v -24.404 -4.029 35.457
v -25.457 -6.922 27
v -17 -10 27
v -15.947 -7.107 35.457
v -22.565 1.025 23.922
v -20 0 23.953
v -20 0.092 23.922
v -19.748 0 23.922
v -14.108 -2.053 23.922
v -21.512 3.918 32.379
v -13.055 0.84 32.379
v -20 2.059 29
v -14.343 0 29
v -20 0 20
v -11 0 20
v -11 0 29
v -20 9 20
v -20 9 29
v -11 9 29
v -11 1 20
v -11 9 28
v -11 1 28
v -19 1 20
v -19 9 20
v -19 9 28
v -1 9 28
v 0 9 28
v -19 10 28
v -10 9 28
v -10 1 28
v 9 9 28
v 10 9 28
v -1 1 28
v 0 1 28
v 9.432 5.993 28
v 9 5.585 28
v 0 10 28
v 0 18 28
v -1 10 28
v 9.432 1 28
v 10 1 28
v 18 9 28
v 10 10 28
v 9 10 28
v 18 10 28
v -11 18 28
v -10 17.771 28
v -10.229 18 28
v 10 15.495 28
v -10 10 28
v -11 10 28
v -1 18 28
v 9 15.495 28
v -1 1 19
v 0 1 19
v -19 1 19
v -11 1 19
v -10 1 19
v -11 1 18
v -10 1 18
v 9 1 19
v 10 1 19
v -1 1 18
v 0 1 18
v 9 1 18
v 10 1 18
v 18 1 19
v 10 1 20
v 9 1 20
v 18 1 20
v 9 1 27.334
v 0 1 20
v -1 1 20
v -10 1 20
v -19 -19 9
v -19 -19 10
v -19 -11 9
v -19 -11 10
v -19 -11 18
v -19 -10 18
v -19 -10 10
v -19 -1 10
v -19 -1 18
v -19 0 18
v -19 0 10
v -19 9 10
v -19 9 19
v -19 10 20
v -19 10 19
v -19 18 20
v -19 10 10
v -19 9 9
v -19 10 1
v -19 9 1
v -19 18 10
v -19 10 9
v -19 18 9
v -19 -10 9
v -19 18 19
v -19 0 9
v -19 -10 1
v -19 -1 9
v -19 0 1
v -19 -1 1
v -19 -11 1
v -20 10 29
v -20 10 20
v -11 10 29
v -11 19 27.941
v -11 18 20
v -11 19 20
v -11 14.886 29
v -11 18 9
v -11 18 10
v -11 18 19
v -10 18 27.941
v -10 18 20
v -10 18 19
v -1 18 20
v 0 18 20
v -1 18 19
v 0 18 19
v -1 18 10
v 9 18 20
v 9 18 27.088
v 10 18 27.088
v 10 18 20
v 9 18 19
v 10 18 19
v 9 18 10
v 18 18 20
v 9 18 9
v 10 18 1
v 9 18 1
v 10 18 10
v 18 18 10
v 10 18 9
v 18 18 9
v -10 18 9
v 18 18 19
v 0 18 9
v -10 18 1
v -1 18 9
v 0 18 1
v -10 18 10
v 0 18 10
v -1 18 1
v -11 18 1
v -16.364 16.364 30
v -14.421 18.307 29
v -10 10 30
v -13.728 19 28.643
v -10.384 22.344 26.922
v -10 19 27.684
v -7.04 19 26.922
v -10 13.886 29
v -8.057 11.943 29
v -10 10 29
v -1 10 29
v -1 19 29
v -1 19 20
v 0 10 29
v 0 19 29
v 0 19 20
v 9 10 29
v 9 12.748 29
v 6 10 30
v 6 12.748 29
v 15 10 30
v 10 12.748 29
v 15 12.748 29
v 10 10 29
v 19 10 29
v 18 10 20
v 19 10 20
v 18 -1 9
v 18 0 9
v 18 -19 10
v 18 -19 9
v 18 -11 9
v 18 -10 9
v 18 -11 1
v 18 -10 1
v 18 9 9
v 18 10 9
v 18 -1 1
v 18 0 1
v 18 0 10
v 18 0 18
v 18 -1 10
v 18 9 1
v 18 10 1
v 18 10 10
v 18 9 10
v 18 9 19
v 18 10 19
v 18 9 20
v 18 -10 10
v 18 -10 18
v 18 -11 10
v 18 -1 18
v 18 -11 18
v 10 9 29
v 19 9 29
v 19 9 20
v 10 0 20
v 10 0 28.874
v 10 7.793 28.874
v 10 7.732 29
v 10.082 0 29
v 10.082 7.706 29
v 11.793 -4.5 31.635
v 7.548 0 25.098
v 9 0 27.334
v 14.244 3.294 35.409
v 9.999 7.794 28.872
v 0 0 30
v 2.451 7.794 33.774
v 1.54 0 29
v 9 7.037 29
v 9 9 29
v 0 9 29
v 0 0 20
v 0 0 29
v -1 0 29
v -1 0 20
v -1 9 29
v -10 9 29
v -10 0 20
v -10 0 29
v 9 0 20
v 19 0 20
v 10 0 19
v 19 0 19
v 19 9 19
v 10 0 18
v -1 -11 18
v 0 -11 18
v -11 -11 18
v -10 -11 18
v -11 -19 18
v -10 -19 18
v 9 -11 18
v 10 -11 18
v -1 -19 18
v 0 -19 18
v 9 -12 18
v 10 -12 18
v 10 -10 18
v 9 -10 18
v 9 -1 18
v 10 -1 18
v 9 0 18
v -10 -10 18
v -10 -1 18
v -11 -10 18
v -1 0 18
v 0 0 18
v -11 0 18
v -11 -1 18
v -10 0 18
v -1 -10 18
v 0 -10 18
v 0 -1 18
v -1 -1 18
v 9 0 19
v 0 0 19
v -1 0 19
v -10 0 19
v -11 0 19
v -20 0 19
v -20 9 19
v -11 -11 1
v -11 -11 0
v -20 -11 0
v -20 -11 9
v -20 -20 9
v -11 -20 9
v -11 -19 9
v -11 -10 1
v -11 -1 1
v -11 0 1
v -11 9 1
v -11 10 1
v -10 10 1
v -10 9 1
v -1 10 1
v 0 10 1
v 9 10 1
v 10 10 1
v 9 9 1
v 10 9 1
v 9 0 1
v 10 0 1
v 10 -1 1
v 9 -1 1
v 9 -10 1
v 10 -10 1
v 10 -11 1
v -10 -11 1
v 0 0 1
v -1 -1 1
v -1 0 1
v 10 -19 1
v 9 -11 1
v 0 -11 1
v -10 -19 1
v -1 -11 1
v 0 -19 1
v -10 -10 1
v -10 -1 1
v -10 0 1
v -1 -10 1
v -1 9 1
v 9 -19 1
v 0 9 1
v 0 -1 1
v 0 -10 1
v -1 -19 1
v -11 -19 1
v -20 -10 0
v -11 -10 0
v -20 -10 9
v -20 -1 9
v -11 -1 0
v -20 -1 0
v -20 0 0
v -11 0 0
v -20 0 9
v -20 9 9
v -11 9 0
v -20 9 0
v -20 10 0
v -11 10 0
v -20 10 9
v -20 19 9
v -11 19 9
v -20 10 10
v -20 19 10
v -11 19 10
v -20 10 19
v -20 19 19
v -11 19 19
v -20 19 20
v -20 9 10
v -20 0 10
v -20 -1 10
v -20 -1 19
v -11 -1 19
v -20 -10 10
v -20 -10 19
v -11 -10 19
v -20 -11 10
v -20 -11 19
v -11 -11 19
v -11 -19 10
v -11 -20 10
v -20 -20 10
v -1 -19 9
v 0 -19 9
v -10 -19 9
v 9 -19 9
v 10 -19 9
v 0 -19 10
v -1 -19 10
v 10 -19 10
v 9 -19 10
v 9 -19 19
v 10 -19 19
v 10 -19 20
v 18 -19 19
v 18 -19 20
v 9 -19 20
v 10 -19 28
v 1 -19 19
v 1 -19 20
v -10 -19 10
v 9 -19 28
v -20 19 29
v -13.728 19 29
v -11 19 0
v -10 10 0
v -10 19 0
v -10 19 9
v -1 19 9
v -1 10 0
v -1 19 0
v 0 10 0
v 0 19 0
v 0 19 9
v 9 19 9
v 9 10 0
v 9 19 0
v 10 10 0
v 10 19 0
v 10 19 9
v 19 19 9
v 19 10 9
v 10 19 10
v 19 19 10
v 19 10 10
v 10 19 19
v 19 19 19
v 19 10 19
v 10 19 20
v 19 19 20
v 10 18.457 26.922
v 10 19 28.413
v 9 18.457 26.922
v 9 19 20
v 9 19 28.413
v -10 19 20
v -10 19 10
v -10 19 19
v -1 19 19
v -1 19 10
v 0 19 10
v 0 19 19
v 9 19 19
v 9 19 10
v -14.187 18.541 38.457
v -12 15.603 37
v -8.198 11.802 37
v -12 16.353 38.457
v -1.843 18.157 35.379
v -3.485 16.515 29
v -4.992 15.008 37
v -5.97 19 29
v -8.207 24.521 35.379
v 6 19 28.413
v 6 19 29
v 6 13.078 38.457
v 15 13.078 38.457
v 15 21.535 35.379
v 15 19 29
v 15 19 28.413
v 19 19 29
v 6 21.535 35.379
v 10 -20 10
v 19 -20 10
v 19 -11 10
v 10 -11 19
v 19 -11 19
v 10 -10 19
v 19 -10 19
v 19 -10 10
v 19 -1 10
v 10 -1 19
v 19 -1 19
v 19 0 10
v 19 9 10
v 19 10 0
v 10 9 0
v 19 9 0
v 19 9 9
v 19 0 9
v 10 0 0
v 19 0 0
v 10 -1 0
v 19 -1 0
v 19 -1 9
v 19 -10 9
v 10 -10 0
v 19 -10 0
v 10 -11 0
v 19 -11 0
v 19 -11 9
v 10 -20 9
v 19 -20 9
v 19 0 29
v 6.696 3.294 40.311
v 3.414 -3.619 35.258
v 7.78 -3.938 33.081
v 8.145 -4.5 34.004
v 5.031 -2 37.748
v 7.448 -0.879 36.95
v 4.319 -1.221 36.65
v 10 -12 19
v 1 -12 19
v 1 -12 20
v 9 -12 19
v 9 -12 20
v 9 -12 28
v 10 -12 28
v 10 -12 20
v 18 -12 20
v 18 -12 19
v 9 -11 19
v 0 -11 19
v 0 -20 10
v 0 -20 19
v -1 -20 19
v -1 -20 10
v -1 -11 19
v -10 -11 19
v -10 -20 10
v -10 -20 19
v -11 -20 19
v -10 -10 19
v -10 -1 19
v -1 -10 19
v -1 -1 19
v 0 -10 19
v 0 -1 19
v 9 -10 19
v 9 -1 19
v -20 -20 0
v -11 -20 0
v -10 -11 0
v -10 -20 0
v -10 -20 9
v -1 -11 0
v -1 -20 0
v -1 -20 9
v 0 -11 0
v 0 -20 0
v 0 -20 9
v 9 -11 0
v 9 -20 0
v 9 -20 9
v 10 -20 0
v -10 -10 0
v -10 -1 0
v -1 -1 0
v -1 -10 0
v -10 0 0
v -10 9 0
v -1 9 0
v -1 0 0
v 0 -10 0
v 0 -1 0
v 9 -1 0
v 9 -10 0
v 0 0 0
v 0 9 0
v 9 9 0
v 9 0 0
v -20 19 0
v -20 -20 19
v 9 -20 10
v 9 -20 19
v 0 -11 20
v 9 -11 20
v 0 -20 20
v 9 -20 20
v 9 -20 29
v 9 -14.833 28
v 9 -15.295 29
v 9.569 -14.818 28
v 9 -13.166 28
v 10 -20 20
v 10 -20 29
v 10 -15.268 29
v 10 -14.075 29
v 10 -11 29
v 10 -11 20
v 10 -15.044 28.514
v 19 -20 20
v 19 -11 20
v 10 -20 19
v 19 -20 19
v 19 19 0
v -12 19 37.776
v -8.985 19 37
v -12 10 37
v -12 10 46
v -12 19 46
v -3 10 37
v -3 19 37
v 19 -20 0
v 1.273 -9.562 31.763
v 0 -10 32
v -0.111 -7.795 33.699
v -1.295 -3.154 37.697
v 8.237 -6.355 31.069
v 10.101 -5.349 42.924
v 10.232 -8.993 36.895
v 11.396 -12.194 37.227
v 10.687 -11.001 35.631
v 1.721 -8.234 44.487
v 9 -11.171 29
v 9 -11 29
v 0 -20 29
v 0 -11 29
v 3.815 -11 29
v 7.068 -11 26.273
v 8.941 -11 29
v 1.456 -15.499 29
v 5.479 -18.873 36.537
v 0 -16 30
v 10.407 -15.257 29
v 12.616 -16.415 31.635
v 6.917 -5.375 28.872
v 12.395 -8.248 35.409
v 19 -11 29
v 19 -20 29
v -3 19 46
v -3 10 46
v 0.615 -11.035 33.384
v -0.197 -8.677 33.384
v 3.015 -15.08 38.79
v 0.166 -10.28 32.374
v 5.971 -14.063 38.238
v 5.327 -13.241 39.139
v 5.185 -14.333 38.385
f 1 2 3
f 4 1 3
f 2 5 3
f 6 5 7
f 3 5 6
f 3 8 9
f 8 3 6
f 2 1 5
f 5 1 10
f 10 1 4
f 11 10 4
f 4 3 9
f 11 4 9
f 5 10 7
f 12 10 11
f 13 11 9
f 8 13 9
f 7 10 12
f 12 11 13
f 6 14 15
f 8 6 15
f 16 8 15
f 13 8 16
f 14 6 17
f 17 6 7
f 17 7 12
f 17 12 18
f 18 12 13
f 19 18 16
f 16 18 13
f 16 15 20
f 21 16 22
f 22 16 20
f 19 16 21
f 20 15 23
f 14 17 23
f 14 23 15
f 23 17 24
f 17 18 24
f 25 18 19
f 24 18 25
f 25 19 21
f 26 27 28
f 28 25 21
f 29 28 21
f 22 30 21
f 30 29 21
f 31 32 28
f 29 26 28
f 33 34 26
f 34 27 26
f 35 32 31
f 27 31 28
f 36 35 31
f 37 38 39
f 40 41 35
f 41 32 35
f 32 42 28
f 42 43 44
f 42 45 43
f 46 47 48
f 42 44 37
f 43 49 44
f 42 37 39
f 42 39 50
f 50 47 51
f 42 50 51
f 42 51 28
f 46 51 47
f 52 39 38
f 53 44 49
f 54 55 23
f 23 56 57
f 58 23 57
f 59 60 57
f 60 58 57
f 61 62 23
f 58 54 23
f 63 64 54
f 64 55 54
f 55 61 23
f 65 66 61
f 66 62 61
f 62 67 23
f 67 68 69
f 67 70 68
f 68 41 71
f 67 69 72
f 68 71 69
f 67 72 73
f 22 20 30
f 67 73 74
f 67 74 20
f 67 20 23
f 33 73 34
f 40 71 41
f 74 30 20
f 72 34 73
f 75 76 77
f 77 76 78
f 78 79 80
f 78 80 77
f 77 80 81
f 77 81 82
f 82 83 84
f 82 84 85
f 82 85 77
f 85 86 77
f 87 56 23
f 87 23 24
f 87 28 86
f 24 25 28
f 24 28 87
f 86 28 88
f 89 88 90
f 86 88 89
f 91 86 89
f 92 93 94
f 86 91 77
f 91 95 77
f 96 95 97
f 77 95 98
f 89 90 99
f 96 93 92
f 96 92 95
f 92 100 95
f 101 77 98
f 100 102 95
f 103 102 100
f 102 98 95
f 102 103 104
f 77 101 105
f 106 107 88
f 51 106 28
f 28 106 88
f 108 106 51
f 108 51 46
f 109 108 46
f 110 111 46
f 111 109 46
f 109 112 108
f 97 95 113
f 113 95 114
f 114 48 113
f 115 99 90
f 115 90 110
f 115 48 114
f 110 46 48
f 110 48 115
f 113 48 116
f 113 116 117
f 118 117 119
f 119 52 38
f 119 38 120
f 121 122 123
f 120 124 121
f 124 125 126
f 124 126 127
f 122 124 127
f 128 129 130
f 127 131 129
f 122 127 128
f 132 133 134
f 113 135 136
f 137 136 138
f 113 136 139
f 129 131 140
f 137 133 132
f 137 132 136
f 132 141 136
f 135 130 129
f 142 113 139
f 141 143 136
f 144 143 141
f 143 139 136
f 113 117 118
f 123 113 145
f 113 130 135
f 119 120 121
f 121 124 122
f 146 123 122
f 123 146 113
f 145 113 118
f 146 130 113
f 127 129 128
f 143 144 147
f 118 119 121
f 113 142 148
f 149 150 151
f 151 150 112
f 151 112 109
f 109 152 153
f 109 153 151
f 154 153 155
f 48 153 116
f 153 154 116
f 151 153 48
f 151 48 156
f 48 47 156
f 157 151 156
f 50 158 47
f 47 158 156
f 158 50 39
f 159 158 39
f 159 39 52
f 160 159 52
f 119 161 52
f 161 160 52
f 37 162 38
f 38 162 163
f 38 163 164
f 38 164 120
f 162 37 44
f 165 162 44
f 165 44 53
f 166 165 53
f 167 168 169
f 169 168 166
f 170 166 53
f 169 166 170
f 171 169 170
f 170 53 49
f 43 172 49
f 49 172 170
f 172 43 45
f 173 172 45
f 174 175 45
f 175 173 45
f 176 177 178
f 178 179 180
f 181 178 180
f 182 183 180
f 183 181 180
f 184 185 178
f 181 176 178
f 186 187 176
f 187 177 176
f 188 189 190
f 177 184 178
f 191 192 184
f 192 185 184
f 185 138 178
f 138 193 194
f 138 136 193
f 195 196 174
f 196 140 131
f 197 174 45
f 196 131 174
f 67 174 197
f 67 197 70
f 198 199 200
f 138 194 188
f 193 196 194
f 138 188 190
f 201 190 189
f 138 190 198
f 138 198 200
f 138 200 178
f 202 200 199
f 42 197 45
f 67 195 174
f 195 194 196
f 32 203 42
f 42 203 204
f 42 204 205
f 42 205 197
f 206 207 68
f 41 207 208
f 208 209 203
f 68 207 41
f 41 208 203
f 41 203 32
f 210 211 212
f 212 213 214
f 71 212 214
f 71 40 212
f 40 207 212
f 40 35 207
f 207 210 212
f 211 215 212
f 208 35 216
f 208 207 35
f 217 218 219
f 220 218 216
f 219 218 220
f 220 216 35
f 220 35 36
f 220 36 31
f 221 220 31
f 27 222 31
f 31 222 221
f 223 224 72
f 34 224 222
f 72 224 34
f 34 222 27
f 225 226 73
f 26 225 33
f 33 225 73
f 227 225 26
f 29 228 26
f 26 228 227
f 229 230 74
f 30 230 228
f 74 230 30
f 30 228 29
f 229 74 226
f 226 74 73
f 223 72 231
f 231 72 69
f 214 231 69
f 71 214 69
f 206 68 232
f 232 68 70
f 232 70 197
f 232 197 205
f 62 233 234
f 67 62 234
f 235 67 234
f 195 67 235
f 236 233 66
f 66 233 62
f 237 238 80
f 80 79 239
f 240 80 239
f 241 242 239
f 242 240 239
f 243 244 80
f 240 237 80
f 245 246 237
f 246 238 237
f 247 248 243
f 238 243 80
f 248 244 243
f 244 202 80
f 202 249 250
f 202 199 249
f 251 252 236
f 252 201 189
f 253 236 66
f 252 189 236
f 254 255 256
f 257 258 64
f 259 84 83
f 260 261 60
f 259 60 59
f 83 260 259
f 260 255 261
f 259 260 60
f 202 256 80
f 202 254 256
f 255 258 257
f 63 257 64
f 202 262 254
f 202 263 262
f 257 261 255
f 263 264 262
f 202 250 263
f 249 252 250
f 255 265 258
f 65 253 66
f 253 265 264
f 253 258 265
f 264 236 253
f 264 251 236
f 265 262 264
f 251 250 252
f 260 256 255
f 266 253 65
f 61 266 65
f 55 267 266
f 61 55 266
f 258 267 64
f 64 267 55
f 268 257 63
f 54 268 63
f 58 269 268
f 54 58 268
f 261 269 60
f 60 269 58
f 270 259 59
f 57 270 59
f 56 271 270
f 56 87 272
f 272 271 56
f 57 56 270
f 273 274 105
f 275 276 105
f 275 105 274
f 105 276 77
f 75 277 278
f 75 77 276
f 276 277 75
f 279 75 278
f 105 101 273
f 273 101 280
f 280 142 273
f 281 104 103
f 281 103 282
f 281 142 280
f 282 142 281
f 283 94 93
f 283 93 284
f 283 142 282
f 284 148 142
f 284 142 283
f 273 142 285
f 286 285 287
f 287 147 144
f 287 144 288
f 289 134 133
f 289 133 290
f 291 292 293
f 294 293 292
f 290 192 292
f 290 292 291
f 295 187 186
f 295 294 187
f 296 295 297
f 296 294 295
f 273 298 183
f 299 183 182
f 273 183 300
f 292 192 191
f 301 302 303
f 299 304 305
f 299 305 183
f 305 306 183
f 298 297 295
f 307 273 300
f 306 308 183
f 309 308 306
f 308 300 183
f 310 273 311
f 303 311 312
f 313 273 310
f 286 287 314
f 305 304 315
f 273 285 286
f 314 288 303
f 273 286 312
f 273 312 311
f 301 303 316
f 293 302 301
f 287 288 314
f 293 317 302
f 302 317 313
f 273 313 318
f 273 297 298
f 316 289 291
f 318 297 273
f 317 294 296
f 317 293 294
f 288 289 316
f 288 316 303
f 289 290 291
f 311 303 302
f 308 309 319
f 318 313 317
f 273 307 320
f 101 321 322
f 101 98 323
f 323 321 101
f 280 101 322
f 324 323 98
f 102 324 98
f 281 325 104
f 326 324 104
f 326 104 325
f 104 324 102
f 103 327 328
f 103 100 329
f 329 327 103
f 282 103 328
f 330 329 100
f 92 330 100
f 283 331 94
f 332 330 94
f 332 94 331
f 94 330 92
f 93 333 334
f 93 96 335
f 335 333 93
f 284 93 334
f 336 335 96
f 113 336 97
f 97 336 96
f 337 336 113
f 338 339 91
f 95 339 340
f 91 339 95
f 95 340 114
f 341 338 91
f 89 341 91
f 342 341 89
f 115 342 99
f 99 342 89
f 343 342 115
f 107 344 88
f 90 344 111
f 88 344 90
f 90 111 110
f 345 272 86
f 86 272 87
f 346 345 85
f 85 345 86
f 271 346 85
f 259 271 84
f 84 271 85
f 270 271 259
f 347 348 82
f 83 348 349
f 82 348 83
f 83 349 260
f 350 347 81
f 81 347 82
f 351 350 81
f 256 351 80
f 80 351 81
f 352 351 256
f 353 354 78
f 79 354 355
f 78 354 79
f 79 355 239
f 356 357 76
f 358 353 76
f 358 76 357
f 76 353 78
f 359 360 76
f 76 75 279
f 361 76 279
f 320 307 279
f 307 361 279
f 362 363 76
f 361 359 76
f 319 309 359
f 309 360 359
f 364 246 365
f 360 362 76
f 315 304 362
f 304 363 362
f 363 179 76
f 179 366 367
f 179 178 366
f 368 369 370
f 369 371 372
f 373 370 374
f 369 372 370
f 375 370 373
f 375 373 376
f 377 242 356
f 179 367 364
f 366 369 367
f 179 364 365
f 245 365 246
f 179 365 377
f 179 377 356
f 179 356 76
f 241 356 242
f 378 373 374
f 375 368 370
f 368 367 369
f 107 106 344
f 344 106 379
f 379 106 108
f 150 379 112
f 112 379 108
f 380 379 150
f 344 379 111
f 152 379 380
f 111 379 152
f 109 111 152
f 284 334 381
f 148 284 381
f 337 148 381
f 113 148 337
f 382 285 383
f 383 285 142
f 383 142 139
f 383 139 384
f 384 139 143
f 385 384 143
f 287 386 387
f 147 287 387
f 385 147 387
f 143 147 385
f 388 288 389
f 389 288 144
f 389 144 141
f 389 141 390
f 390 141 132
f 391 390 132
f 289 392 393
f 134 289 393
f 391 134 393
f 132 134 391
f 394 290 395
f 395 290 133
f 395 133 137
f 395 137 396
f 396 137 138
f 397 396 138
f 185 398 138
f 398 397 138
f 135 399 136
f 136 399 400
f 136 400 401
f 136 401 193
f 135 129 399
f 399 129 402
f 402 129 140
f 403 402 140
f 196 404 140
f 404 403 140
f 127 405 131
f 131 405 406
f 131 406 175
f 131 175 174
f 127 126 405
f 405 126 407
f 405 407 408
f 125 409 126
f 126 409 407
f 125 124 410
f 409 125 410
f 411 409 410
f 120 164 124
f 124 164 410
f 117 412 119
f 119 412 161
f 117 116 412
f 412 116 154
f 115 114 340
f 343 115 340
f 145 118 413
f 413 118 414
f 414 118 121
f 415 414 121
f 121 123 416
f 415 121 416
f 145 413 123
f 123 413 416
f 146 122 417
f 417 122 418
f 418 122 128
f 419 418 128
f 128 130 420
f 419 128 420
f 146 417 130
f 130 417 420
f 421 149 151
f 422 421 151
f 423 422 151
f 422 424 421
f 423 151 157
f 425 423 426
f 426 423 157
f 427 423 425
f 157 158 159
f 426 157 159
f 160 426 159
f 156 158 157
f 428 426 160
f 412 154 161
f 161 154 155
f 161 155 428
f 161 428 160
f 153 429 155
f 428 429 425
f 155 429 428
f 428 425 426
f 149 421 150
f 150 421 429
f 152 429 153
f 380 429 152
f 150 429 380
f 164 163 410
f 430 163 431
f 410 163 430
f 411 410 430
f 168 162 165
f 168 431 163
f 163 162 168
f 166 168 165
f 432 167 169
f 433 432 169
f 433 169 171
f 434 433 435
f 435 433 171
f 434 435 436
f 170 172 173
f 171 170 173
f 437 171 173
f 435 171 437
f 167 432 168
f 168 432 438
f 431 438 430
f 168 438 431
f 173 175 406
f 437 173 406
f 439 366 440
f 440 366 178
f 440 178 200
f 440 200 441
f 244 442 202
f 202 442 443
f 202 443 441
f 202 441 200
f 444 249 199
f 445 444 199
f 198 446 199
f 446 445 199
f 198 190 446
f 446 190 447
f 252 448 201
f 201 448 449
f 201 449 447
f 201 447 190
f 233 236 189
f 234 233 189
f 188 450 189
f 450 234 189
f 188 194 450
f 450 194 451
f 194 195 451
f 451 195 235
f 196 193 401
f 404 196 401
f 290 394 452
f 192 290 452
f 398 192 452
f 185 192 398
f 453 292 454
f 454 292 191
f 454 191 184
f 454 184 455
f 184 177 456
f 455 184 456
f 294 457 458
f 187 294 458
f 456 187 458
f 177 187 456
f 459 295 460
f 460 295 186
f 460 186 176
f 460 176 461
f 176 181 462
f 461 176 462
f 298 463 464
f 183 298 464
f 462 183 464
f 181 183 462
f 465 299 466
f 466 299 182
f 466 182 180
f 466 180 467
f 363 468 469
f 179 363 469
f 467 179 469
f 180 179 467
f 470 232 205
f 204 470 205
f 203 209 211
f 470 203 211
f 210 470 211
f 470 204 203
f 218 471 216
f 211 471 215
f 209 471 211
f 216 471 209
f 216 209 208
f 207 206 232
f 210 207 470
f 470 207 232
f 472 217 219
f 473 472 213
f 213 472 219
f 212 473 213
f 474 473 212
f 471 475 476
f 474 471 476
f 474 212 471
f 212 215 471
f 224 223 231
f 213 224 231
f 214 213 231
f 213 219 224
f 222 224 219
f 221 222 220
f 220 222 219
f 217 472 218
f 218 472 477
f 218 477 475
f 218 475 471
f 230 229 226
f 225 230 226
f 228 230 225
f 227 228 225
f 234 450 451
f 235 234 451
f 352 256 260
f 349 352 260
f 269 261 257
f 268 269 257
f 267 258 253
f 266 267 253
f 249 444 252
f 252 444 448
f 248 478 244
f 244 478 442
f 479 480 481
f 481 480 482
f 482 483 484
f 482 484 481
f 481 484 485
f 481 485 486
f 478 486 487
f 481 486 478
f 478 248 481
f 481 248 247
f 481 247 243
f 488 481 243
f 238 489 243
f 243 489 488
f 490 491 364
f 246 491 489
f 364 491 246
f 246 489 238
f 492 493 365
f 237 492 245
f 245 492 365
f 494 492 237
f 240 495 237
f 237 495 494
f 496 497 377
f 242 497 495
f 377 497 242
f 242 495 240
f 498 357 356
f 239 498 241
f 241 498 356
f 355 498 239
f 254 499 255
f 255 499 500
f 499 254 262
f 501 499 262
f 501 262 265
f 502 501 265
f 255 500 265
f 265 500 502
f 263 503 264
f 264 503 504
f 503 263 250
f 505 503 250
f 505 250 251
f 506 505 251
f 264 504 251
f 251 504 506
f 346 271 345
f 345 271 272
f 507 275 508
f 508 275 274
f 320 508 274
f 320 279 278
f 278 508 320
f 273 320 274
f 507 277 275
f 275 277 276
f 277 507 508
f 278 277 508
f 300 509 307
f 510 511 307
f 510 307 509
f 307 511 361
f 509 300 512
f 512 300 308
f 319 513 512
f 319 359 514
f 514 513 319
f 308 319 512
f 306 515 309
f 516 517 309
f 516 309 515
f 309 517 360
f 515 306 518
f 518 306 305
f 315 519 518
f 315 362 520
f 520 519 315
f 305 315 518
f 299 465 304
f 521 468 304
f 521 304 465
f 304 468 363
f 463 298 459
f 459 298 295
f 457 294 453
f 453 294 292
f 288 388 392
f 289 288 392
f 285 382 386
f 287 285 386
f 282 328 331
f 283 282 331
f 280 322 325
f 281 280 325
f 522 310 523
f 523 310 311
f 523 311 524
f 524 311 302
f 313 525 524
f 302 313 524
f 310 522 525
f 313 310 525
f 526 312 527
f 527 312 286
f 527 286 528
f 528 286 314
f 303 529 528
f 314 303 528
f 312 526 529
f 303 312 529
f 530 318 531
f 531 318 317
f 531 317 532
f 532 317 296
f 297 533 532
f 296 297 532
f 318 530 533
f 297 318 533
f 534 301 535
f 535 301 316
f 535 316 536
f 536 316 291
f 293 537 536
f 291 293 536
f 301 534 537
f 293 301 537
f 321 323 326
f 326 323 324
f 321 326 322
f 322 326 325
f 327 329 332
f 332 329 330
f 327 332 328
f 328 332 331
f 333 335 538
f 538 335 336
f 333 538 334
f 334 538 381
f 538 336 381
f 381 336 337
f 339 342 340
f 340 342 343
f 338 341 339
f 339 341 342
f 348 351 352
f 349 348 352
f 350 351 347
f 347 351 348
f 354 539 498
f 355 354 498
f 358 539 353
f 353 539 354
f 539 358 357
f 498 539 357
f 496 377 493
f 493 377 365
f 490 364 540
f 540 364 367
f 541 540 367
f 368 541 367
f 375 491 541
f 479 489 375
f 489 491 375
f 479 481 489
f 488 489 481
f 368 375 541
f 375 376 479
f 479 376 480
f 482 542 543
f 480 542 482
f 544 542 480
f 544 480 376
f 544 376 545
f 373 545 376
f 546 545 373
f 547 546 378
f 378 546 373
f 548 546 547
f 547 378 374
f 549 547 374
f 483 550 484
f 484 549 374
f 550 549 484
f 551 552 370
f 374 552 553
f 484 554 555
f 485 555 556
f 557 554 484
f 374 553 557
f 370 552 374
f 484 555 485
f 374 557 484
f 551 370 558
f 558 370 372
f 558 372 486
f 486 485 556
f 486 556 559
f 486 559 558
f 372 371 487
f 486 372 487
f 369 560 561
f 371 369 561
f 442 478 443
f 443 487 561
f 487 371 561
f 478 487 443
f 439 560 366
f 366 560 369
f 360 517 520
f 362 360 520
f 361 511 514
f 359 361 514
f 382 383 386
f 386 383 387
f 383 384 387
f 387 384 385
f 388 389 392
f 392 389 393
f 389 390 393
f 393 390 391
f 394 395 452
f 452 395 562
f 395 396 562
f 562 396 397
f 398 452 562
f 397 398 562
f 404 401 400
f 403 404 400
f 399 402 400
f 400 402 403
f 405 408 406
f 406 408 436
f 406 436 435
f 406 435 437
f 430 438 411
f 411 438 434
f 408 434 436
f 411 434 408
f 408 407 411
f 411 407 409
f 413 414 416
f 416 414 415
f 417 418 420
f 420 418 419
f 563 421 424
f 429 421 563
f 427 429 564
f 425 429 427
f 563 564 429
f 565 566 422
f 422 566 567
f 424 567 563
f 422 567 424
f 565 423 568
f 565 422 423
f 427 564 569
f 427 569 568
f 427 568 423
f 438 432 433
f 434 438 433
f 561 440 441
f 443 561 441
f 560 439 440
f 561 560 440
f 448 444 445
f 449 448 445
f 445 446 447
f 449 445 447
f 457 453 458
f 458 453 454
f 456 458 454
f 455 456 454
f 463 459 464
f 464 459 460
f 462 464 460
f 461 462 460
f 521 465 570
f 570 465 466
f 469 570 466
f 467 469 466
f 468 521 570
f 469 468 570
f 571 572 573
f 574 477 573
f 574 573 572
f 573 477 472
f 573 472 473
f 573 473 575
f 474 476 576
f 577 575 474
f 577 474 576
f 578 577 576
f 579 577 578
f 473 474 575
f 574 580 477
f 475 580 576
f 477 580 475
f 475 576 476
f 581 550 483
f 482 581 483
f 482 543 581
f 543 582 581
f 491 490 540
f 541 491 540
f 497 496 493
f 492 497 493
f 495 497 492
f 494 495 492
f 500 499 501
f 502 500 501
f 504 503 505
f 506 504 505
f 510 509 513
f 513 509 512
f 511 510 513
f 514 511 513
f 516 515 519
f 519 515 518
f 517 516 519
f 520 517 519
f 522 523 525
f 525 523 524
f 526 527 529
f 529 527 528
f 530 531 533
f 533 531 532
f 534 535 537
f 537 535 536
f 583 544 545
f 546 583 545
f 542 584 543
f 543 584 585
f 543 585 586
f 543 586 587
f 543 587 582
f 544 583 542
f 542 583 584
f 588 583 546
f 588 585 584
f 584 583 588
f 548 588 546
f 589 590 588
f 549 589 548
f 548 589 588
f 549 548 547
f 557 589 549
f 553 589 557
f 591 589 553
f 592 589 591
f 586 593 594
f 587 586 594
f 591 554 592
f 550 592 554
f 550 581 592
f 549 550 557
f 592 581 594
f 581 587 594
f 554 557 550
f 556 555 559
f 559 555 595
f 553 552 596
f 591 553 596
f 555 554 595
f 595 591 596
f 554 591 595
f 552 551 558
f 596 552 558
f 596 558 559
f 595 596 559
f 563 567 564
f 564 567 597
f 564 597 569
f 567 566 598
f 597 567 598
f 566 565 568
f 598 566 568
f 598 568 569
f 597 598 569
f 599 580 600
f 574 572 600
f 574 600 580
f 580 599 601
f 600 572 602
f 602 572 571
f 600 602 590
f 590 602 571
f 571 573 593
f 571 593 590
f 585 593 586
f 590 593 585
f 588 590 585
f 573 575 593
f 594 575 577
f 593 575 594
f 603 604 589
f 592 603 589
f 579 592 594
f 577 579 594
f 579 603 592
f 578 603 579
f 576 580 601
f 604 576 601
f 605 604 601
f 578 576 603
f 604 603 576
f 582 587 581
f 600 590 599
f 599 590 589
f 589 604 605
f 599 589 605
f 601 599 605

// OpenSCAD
// Base cubes
for (x = [-2 : 1]) {
  for (y = [-2 : 1]) {
    for (z = [0, 1, 2]) {
        if ( z < 2 || y >= 0) {
          translate([x * 10, y * 10 , z * 10])
          cube(size = 9, center = false);
        }
    }
  }
}

translate([0, -20, 20])
    cube(size = 9, center = false);

translate([10, -20, 20])
    cube(size = 9, center = false);

// Internal support

translate([1,-19,1])
  cube(size = [17,7,27], center = false);

translate([-19,-19,1])
  cube(size = [37,37,17], center = false);

translate([-19,1,1])
  cube(size = [37,17,27], center = false);


// Random cubes

translate([0, 0, 30])
  rotate(a=[30,33,0])
    cube(size = 9, center = false);

translate([0, -16, 30])
  rotate(a=[30,33,19])
    cube(size = 9, center = false);


translate([0, -10, 32])
  rotate(a=[40,10,19])
    cube(size = 9, center = false);

translate([-10, 10, 30])
  rotate(a=[0, 20, 45])
    cube(size = 9, center = false);


translate([15, 10, 30])
  rotate(a=[0, 20, 90])
    cube(size = 9, center = false);


translate([-17, -10, 27])
  rotate(a=[0, 20, 70])
    cube(size = 9, center = false);

translate([-12, 10, 37])
  rotate(a=[0, 0, 0])
    cube(size = 9, center = false);
